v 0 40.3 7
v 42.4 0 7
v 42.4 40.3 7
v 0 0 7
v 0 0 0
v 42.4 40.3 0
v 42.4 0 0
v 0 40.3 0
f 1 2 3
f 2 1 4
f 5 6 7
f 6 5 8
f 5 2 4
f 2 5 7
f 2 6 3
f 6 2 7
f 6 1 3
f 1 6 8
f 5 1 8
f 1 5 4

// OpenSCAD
$fn=100;
color("red") {
    l=42.4;
    w=40.3;
    h=7;
    difference()
    {
        cube([l,w,h]);    
//        cyclinder(h=h, d=3);
    }
}
